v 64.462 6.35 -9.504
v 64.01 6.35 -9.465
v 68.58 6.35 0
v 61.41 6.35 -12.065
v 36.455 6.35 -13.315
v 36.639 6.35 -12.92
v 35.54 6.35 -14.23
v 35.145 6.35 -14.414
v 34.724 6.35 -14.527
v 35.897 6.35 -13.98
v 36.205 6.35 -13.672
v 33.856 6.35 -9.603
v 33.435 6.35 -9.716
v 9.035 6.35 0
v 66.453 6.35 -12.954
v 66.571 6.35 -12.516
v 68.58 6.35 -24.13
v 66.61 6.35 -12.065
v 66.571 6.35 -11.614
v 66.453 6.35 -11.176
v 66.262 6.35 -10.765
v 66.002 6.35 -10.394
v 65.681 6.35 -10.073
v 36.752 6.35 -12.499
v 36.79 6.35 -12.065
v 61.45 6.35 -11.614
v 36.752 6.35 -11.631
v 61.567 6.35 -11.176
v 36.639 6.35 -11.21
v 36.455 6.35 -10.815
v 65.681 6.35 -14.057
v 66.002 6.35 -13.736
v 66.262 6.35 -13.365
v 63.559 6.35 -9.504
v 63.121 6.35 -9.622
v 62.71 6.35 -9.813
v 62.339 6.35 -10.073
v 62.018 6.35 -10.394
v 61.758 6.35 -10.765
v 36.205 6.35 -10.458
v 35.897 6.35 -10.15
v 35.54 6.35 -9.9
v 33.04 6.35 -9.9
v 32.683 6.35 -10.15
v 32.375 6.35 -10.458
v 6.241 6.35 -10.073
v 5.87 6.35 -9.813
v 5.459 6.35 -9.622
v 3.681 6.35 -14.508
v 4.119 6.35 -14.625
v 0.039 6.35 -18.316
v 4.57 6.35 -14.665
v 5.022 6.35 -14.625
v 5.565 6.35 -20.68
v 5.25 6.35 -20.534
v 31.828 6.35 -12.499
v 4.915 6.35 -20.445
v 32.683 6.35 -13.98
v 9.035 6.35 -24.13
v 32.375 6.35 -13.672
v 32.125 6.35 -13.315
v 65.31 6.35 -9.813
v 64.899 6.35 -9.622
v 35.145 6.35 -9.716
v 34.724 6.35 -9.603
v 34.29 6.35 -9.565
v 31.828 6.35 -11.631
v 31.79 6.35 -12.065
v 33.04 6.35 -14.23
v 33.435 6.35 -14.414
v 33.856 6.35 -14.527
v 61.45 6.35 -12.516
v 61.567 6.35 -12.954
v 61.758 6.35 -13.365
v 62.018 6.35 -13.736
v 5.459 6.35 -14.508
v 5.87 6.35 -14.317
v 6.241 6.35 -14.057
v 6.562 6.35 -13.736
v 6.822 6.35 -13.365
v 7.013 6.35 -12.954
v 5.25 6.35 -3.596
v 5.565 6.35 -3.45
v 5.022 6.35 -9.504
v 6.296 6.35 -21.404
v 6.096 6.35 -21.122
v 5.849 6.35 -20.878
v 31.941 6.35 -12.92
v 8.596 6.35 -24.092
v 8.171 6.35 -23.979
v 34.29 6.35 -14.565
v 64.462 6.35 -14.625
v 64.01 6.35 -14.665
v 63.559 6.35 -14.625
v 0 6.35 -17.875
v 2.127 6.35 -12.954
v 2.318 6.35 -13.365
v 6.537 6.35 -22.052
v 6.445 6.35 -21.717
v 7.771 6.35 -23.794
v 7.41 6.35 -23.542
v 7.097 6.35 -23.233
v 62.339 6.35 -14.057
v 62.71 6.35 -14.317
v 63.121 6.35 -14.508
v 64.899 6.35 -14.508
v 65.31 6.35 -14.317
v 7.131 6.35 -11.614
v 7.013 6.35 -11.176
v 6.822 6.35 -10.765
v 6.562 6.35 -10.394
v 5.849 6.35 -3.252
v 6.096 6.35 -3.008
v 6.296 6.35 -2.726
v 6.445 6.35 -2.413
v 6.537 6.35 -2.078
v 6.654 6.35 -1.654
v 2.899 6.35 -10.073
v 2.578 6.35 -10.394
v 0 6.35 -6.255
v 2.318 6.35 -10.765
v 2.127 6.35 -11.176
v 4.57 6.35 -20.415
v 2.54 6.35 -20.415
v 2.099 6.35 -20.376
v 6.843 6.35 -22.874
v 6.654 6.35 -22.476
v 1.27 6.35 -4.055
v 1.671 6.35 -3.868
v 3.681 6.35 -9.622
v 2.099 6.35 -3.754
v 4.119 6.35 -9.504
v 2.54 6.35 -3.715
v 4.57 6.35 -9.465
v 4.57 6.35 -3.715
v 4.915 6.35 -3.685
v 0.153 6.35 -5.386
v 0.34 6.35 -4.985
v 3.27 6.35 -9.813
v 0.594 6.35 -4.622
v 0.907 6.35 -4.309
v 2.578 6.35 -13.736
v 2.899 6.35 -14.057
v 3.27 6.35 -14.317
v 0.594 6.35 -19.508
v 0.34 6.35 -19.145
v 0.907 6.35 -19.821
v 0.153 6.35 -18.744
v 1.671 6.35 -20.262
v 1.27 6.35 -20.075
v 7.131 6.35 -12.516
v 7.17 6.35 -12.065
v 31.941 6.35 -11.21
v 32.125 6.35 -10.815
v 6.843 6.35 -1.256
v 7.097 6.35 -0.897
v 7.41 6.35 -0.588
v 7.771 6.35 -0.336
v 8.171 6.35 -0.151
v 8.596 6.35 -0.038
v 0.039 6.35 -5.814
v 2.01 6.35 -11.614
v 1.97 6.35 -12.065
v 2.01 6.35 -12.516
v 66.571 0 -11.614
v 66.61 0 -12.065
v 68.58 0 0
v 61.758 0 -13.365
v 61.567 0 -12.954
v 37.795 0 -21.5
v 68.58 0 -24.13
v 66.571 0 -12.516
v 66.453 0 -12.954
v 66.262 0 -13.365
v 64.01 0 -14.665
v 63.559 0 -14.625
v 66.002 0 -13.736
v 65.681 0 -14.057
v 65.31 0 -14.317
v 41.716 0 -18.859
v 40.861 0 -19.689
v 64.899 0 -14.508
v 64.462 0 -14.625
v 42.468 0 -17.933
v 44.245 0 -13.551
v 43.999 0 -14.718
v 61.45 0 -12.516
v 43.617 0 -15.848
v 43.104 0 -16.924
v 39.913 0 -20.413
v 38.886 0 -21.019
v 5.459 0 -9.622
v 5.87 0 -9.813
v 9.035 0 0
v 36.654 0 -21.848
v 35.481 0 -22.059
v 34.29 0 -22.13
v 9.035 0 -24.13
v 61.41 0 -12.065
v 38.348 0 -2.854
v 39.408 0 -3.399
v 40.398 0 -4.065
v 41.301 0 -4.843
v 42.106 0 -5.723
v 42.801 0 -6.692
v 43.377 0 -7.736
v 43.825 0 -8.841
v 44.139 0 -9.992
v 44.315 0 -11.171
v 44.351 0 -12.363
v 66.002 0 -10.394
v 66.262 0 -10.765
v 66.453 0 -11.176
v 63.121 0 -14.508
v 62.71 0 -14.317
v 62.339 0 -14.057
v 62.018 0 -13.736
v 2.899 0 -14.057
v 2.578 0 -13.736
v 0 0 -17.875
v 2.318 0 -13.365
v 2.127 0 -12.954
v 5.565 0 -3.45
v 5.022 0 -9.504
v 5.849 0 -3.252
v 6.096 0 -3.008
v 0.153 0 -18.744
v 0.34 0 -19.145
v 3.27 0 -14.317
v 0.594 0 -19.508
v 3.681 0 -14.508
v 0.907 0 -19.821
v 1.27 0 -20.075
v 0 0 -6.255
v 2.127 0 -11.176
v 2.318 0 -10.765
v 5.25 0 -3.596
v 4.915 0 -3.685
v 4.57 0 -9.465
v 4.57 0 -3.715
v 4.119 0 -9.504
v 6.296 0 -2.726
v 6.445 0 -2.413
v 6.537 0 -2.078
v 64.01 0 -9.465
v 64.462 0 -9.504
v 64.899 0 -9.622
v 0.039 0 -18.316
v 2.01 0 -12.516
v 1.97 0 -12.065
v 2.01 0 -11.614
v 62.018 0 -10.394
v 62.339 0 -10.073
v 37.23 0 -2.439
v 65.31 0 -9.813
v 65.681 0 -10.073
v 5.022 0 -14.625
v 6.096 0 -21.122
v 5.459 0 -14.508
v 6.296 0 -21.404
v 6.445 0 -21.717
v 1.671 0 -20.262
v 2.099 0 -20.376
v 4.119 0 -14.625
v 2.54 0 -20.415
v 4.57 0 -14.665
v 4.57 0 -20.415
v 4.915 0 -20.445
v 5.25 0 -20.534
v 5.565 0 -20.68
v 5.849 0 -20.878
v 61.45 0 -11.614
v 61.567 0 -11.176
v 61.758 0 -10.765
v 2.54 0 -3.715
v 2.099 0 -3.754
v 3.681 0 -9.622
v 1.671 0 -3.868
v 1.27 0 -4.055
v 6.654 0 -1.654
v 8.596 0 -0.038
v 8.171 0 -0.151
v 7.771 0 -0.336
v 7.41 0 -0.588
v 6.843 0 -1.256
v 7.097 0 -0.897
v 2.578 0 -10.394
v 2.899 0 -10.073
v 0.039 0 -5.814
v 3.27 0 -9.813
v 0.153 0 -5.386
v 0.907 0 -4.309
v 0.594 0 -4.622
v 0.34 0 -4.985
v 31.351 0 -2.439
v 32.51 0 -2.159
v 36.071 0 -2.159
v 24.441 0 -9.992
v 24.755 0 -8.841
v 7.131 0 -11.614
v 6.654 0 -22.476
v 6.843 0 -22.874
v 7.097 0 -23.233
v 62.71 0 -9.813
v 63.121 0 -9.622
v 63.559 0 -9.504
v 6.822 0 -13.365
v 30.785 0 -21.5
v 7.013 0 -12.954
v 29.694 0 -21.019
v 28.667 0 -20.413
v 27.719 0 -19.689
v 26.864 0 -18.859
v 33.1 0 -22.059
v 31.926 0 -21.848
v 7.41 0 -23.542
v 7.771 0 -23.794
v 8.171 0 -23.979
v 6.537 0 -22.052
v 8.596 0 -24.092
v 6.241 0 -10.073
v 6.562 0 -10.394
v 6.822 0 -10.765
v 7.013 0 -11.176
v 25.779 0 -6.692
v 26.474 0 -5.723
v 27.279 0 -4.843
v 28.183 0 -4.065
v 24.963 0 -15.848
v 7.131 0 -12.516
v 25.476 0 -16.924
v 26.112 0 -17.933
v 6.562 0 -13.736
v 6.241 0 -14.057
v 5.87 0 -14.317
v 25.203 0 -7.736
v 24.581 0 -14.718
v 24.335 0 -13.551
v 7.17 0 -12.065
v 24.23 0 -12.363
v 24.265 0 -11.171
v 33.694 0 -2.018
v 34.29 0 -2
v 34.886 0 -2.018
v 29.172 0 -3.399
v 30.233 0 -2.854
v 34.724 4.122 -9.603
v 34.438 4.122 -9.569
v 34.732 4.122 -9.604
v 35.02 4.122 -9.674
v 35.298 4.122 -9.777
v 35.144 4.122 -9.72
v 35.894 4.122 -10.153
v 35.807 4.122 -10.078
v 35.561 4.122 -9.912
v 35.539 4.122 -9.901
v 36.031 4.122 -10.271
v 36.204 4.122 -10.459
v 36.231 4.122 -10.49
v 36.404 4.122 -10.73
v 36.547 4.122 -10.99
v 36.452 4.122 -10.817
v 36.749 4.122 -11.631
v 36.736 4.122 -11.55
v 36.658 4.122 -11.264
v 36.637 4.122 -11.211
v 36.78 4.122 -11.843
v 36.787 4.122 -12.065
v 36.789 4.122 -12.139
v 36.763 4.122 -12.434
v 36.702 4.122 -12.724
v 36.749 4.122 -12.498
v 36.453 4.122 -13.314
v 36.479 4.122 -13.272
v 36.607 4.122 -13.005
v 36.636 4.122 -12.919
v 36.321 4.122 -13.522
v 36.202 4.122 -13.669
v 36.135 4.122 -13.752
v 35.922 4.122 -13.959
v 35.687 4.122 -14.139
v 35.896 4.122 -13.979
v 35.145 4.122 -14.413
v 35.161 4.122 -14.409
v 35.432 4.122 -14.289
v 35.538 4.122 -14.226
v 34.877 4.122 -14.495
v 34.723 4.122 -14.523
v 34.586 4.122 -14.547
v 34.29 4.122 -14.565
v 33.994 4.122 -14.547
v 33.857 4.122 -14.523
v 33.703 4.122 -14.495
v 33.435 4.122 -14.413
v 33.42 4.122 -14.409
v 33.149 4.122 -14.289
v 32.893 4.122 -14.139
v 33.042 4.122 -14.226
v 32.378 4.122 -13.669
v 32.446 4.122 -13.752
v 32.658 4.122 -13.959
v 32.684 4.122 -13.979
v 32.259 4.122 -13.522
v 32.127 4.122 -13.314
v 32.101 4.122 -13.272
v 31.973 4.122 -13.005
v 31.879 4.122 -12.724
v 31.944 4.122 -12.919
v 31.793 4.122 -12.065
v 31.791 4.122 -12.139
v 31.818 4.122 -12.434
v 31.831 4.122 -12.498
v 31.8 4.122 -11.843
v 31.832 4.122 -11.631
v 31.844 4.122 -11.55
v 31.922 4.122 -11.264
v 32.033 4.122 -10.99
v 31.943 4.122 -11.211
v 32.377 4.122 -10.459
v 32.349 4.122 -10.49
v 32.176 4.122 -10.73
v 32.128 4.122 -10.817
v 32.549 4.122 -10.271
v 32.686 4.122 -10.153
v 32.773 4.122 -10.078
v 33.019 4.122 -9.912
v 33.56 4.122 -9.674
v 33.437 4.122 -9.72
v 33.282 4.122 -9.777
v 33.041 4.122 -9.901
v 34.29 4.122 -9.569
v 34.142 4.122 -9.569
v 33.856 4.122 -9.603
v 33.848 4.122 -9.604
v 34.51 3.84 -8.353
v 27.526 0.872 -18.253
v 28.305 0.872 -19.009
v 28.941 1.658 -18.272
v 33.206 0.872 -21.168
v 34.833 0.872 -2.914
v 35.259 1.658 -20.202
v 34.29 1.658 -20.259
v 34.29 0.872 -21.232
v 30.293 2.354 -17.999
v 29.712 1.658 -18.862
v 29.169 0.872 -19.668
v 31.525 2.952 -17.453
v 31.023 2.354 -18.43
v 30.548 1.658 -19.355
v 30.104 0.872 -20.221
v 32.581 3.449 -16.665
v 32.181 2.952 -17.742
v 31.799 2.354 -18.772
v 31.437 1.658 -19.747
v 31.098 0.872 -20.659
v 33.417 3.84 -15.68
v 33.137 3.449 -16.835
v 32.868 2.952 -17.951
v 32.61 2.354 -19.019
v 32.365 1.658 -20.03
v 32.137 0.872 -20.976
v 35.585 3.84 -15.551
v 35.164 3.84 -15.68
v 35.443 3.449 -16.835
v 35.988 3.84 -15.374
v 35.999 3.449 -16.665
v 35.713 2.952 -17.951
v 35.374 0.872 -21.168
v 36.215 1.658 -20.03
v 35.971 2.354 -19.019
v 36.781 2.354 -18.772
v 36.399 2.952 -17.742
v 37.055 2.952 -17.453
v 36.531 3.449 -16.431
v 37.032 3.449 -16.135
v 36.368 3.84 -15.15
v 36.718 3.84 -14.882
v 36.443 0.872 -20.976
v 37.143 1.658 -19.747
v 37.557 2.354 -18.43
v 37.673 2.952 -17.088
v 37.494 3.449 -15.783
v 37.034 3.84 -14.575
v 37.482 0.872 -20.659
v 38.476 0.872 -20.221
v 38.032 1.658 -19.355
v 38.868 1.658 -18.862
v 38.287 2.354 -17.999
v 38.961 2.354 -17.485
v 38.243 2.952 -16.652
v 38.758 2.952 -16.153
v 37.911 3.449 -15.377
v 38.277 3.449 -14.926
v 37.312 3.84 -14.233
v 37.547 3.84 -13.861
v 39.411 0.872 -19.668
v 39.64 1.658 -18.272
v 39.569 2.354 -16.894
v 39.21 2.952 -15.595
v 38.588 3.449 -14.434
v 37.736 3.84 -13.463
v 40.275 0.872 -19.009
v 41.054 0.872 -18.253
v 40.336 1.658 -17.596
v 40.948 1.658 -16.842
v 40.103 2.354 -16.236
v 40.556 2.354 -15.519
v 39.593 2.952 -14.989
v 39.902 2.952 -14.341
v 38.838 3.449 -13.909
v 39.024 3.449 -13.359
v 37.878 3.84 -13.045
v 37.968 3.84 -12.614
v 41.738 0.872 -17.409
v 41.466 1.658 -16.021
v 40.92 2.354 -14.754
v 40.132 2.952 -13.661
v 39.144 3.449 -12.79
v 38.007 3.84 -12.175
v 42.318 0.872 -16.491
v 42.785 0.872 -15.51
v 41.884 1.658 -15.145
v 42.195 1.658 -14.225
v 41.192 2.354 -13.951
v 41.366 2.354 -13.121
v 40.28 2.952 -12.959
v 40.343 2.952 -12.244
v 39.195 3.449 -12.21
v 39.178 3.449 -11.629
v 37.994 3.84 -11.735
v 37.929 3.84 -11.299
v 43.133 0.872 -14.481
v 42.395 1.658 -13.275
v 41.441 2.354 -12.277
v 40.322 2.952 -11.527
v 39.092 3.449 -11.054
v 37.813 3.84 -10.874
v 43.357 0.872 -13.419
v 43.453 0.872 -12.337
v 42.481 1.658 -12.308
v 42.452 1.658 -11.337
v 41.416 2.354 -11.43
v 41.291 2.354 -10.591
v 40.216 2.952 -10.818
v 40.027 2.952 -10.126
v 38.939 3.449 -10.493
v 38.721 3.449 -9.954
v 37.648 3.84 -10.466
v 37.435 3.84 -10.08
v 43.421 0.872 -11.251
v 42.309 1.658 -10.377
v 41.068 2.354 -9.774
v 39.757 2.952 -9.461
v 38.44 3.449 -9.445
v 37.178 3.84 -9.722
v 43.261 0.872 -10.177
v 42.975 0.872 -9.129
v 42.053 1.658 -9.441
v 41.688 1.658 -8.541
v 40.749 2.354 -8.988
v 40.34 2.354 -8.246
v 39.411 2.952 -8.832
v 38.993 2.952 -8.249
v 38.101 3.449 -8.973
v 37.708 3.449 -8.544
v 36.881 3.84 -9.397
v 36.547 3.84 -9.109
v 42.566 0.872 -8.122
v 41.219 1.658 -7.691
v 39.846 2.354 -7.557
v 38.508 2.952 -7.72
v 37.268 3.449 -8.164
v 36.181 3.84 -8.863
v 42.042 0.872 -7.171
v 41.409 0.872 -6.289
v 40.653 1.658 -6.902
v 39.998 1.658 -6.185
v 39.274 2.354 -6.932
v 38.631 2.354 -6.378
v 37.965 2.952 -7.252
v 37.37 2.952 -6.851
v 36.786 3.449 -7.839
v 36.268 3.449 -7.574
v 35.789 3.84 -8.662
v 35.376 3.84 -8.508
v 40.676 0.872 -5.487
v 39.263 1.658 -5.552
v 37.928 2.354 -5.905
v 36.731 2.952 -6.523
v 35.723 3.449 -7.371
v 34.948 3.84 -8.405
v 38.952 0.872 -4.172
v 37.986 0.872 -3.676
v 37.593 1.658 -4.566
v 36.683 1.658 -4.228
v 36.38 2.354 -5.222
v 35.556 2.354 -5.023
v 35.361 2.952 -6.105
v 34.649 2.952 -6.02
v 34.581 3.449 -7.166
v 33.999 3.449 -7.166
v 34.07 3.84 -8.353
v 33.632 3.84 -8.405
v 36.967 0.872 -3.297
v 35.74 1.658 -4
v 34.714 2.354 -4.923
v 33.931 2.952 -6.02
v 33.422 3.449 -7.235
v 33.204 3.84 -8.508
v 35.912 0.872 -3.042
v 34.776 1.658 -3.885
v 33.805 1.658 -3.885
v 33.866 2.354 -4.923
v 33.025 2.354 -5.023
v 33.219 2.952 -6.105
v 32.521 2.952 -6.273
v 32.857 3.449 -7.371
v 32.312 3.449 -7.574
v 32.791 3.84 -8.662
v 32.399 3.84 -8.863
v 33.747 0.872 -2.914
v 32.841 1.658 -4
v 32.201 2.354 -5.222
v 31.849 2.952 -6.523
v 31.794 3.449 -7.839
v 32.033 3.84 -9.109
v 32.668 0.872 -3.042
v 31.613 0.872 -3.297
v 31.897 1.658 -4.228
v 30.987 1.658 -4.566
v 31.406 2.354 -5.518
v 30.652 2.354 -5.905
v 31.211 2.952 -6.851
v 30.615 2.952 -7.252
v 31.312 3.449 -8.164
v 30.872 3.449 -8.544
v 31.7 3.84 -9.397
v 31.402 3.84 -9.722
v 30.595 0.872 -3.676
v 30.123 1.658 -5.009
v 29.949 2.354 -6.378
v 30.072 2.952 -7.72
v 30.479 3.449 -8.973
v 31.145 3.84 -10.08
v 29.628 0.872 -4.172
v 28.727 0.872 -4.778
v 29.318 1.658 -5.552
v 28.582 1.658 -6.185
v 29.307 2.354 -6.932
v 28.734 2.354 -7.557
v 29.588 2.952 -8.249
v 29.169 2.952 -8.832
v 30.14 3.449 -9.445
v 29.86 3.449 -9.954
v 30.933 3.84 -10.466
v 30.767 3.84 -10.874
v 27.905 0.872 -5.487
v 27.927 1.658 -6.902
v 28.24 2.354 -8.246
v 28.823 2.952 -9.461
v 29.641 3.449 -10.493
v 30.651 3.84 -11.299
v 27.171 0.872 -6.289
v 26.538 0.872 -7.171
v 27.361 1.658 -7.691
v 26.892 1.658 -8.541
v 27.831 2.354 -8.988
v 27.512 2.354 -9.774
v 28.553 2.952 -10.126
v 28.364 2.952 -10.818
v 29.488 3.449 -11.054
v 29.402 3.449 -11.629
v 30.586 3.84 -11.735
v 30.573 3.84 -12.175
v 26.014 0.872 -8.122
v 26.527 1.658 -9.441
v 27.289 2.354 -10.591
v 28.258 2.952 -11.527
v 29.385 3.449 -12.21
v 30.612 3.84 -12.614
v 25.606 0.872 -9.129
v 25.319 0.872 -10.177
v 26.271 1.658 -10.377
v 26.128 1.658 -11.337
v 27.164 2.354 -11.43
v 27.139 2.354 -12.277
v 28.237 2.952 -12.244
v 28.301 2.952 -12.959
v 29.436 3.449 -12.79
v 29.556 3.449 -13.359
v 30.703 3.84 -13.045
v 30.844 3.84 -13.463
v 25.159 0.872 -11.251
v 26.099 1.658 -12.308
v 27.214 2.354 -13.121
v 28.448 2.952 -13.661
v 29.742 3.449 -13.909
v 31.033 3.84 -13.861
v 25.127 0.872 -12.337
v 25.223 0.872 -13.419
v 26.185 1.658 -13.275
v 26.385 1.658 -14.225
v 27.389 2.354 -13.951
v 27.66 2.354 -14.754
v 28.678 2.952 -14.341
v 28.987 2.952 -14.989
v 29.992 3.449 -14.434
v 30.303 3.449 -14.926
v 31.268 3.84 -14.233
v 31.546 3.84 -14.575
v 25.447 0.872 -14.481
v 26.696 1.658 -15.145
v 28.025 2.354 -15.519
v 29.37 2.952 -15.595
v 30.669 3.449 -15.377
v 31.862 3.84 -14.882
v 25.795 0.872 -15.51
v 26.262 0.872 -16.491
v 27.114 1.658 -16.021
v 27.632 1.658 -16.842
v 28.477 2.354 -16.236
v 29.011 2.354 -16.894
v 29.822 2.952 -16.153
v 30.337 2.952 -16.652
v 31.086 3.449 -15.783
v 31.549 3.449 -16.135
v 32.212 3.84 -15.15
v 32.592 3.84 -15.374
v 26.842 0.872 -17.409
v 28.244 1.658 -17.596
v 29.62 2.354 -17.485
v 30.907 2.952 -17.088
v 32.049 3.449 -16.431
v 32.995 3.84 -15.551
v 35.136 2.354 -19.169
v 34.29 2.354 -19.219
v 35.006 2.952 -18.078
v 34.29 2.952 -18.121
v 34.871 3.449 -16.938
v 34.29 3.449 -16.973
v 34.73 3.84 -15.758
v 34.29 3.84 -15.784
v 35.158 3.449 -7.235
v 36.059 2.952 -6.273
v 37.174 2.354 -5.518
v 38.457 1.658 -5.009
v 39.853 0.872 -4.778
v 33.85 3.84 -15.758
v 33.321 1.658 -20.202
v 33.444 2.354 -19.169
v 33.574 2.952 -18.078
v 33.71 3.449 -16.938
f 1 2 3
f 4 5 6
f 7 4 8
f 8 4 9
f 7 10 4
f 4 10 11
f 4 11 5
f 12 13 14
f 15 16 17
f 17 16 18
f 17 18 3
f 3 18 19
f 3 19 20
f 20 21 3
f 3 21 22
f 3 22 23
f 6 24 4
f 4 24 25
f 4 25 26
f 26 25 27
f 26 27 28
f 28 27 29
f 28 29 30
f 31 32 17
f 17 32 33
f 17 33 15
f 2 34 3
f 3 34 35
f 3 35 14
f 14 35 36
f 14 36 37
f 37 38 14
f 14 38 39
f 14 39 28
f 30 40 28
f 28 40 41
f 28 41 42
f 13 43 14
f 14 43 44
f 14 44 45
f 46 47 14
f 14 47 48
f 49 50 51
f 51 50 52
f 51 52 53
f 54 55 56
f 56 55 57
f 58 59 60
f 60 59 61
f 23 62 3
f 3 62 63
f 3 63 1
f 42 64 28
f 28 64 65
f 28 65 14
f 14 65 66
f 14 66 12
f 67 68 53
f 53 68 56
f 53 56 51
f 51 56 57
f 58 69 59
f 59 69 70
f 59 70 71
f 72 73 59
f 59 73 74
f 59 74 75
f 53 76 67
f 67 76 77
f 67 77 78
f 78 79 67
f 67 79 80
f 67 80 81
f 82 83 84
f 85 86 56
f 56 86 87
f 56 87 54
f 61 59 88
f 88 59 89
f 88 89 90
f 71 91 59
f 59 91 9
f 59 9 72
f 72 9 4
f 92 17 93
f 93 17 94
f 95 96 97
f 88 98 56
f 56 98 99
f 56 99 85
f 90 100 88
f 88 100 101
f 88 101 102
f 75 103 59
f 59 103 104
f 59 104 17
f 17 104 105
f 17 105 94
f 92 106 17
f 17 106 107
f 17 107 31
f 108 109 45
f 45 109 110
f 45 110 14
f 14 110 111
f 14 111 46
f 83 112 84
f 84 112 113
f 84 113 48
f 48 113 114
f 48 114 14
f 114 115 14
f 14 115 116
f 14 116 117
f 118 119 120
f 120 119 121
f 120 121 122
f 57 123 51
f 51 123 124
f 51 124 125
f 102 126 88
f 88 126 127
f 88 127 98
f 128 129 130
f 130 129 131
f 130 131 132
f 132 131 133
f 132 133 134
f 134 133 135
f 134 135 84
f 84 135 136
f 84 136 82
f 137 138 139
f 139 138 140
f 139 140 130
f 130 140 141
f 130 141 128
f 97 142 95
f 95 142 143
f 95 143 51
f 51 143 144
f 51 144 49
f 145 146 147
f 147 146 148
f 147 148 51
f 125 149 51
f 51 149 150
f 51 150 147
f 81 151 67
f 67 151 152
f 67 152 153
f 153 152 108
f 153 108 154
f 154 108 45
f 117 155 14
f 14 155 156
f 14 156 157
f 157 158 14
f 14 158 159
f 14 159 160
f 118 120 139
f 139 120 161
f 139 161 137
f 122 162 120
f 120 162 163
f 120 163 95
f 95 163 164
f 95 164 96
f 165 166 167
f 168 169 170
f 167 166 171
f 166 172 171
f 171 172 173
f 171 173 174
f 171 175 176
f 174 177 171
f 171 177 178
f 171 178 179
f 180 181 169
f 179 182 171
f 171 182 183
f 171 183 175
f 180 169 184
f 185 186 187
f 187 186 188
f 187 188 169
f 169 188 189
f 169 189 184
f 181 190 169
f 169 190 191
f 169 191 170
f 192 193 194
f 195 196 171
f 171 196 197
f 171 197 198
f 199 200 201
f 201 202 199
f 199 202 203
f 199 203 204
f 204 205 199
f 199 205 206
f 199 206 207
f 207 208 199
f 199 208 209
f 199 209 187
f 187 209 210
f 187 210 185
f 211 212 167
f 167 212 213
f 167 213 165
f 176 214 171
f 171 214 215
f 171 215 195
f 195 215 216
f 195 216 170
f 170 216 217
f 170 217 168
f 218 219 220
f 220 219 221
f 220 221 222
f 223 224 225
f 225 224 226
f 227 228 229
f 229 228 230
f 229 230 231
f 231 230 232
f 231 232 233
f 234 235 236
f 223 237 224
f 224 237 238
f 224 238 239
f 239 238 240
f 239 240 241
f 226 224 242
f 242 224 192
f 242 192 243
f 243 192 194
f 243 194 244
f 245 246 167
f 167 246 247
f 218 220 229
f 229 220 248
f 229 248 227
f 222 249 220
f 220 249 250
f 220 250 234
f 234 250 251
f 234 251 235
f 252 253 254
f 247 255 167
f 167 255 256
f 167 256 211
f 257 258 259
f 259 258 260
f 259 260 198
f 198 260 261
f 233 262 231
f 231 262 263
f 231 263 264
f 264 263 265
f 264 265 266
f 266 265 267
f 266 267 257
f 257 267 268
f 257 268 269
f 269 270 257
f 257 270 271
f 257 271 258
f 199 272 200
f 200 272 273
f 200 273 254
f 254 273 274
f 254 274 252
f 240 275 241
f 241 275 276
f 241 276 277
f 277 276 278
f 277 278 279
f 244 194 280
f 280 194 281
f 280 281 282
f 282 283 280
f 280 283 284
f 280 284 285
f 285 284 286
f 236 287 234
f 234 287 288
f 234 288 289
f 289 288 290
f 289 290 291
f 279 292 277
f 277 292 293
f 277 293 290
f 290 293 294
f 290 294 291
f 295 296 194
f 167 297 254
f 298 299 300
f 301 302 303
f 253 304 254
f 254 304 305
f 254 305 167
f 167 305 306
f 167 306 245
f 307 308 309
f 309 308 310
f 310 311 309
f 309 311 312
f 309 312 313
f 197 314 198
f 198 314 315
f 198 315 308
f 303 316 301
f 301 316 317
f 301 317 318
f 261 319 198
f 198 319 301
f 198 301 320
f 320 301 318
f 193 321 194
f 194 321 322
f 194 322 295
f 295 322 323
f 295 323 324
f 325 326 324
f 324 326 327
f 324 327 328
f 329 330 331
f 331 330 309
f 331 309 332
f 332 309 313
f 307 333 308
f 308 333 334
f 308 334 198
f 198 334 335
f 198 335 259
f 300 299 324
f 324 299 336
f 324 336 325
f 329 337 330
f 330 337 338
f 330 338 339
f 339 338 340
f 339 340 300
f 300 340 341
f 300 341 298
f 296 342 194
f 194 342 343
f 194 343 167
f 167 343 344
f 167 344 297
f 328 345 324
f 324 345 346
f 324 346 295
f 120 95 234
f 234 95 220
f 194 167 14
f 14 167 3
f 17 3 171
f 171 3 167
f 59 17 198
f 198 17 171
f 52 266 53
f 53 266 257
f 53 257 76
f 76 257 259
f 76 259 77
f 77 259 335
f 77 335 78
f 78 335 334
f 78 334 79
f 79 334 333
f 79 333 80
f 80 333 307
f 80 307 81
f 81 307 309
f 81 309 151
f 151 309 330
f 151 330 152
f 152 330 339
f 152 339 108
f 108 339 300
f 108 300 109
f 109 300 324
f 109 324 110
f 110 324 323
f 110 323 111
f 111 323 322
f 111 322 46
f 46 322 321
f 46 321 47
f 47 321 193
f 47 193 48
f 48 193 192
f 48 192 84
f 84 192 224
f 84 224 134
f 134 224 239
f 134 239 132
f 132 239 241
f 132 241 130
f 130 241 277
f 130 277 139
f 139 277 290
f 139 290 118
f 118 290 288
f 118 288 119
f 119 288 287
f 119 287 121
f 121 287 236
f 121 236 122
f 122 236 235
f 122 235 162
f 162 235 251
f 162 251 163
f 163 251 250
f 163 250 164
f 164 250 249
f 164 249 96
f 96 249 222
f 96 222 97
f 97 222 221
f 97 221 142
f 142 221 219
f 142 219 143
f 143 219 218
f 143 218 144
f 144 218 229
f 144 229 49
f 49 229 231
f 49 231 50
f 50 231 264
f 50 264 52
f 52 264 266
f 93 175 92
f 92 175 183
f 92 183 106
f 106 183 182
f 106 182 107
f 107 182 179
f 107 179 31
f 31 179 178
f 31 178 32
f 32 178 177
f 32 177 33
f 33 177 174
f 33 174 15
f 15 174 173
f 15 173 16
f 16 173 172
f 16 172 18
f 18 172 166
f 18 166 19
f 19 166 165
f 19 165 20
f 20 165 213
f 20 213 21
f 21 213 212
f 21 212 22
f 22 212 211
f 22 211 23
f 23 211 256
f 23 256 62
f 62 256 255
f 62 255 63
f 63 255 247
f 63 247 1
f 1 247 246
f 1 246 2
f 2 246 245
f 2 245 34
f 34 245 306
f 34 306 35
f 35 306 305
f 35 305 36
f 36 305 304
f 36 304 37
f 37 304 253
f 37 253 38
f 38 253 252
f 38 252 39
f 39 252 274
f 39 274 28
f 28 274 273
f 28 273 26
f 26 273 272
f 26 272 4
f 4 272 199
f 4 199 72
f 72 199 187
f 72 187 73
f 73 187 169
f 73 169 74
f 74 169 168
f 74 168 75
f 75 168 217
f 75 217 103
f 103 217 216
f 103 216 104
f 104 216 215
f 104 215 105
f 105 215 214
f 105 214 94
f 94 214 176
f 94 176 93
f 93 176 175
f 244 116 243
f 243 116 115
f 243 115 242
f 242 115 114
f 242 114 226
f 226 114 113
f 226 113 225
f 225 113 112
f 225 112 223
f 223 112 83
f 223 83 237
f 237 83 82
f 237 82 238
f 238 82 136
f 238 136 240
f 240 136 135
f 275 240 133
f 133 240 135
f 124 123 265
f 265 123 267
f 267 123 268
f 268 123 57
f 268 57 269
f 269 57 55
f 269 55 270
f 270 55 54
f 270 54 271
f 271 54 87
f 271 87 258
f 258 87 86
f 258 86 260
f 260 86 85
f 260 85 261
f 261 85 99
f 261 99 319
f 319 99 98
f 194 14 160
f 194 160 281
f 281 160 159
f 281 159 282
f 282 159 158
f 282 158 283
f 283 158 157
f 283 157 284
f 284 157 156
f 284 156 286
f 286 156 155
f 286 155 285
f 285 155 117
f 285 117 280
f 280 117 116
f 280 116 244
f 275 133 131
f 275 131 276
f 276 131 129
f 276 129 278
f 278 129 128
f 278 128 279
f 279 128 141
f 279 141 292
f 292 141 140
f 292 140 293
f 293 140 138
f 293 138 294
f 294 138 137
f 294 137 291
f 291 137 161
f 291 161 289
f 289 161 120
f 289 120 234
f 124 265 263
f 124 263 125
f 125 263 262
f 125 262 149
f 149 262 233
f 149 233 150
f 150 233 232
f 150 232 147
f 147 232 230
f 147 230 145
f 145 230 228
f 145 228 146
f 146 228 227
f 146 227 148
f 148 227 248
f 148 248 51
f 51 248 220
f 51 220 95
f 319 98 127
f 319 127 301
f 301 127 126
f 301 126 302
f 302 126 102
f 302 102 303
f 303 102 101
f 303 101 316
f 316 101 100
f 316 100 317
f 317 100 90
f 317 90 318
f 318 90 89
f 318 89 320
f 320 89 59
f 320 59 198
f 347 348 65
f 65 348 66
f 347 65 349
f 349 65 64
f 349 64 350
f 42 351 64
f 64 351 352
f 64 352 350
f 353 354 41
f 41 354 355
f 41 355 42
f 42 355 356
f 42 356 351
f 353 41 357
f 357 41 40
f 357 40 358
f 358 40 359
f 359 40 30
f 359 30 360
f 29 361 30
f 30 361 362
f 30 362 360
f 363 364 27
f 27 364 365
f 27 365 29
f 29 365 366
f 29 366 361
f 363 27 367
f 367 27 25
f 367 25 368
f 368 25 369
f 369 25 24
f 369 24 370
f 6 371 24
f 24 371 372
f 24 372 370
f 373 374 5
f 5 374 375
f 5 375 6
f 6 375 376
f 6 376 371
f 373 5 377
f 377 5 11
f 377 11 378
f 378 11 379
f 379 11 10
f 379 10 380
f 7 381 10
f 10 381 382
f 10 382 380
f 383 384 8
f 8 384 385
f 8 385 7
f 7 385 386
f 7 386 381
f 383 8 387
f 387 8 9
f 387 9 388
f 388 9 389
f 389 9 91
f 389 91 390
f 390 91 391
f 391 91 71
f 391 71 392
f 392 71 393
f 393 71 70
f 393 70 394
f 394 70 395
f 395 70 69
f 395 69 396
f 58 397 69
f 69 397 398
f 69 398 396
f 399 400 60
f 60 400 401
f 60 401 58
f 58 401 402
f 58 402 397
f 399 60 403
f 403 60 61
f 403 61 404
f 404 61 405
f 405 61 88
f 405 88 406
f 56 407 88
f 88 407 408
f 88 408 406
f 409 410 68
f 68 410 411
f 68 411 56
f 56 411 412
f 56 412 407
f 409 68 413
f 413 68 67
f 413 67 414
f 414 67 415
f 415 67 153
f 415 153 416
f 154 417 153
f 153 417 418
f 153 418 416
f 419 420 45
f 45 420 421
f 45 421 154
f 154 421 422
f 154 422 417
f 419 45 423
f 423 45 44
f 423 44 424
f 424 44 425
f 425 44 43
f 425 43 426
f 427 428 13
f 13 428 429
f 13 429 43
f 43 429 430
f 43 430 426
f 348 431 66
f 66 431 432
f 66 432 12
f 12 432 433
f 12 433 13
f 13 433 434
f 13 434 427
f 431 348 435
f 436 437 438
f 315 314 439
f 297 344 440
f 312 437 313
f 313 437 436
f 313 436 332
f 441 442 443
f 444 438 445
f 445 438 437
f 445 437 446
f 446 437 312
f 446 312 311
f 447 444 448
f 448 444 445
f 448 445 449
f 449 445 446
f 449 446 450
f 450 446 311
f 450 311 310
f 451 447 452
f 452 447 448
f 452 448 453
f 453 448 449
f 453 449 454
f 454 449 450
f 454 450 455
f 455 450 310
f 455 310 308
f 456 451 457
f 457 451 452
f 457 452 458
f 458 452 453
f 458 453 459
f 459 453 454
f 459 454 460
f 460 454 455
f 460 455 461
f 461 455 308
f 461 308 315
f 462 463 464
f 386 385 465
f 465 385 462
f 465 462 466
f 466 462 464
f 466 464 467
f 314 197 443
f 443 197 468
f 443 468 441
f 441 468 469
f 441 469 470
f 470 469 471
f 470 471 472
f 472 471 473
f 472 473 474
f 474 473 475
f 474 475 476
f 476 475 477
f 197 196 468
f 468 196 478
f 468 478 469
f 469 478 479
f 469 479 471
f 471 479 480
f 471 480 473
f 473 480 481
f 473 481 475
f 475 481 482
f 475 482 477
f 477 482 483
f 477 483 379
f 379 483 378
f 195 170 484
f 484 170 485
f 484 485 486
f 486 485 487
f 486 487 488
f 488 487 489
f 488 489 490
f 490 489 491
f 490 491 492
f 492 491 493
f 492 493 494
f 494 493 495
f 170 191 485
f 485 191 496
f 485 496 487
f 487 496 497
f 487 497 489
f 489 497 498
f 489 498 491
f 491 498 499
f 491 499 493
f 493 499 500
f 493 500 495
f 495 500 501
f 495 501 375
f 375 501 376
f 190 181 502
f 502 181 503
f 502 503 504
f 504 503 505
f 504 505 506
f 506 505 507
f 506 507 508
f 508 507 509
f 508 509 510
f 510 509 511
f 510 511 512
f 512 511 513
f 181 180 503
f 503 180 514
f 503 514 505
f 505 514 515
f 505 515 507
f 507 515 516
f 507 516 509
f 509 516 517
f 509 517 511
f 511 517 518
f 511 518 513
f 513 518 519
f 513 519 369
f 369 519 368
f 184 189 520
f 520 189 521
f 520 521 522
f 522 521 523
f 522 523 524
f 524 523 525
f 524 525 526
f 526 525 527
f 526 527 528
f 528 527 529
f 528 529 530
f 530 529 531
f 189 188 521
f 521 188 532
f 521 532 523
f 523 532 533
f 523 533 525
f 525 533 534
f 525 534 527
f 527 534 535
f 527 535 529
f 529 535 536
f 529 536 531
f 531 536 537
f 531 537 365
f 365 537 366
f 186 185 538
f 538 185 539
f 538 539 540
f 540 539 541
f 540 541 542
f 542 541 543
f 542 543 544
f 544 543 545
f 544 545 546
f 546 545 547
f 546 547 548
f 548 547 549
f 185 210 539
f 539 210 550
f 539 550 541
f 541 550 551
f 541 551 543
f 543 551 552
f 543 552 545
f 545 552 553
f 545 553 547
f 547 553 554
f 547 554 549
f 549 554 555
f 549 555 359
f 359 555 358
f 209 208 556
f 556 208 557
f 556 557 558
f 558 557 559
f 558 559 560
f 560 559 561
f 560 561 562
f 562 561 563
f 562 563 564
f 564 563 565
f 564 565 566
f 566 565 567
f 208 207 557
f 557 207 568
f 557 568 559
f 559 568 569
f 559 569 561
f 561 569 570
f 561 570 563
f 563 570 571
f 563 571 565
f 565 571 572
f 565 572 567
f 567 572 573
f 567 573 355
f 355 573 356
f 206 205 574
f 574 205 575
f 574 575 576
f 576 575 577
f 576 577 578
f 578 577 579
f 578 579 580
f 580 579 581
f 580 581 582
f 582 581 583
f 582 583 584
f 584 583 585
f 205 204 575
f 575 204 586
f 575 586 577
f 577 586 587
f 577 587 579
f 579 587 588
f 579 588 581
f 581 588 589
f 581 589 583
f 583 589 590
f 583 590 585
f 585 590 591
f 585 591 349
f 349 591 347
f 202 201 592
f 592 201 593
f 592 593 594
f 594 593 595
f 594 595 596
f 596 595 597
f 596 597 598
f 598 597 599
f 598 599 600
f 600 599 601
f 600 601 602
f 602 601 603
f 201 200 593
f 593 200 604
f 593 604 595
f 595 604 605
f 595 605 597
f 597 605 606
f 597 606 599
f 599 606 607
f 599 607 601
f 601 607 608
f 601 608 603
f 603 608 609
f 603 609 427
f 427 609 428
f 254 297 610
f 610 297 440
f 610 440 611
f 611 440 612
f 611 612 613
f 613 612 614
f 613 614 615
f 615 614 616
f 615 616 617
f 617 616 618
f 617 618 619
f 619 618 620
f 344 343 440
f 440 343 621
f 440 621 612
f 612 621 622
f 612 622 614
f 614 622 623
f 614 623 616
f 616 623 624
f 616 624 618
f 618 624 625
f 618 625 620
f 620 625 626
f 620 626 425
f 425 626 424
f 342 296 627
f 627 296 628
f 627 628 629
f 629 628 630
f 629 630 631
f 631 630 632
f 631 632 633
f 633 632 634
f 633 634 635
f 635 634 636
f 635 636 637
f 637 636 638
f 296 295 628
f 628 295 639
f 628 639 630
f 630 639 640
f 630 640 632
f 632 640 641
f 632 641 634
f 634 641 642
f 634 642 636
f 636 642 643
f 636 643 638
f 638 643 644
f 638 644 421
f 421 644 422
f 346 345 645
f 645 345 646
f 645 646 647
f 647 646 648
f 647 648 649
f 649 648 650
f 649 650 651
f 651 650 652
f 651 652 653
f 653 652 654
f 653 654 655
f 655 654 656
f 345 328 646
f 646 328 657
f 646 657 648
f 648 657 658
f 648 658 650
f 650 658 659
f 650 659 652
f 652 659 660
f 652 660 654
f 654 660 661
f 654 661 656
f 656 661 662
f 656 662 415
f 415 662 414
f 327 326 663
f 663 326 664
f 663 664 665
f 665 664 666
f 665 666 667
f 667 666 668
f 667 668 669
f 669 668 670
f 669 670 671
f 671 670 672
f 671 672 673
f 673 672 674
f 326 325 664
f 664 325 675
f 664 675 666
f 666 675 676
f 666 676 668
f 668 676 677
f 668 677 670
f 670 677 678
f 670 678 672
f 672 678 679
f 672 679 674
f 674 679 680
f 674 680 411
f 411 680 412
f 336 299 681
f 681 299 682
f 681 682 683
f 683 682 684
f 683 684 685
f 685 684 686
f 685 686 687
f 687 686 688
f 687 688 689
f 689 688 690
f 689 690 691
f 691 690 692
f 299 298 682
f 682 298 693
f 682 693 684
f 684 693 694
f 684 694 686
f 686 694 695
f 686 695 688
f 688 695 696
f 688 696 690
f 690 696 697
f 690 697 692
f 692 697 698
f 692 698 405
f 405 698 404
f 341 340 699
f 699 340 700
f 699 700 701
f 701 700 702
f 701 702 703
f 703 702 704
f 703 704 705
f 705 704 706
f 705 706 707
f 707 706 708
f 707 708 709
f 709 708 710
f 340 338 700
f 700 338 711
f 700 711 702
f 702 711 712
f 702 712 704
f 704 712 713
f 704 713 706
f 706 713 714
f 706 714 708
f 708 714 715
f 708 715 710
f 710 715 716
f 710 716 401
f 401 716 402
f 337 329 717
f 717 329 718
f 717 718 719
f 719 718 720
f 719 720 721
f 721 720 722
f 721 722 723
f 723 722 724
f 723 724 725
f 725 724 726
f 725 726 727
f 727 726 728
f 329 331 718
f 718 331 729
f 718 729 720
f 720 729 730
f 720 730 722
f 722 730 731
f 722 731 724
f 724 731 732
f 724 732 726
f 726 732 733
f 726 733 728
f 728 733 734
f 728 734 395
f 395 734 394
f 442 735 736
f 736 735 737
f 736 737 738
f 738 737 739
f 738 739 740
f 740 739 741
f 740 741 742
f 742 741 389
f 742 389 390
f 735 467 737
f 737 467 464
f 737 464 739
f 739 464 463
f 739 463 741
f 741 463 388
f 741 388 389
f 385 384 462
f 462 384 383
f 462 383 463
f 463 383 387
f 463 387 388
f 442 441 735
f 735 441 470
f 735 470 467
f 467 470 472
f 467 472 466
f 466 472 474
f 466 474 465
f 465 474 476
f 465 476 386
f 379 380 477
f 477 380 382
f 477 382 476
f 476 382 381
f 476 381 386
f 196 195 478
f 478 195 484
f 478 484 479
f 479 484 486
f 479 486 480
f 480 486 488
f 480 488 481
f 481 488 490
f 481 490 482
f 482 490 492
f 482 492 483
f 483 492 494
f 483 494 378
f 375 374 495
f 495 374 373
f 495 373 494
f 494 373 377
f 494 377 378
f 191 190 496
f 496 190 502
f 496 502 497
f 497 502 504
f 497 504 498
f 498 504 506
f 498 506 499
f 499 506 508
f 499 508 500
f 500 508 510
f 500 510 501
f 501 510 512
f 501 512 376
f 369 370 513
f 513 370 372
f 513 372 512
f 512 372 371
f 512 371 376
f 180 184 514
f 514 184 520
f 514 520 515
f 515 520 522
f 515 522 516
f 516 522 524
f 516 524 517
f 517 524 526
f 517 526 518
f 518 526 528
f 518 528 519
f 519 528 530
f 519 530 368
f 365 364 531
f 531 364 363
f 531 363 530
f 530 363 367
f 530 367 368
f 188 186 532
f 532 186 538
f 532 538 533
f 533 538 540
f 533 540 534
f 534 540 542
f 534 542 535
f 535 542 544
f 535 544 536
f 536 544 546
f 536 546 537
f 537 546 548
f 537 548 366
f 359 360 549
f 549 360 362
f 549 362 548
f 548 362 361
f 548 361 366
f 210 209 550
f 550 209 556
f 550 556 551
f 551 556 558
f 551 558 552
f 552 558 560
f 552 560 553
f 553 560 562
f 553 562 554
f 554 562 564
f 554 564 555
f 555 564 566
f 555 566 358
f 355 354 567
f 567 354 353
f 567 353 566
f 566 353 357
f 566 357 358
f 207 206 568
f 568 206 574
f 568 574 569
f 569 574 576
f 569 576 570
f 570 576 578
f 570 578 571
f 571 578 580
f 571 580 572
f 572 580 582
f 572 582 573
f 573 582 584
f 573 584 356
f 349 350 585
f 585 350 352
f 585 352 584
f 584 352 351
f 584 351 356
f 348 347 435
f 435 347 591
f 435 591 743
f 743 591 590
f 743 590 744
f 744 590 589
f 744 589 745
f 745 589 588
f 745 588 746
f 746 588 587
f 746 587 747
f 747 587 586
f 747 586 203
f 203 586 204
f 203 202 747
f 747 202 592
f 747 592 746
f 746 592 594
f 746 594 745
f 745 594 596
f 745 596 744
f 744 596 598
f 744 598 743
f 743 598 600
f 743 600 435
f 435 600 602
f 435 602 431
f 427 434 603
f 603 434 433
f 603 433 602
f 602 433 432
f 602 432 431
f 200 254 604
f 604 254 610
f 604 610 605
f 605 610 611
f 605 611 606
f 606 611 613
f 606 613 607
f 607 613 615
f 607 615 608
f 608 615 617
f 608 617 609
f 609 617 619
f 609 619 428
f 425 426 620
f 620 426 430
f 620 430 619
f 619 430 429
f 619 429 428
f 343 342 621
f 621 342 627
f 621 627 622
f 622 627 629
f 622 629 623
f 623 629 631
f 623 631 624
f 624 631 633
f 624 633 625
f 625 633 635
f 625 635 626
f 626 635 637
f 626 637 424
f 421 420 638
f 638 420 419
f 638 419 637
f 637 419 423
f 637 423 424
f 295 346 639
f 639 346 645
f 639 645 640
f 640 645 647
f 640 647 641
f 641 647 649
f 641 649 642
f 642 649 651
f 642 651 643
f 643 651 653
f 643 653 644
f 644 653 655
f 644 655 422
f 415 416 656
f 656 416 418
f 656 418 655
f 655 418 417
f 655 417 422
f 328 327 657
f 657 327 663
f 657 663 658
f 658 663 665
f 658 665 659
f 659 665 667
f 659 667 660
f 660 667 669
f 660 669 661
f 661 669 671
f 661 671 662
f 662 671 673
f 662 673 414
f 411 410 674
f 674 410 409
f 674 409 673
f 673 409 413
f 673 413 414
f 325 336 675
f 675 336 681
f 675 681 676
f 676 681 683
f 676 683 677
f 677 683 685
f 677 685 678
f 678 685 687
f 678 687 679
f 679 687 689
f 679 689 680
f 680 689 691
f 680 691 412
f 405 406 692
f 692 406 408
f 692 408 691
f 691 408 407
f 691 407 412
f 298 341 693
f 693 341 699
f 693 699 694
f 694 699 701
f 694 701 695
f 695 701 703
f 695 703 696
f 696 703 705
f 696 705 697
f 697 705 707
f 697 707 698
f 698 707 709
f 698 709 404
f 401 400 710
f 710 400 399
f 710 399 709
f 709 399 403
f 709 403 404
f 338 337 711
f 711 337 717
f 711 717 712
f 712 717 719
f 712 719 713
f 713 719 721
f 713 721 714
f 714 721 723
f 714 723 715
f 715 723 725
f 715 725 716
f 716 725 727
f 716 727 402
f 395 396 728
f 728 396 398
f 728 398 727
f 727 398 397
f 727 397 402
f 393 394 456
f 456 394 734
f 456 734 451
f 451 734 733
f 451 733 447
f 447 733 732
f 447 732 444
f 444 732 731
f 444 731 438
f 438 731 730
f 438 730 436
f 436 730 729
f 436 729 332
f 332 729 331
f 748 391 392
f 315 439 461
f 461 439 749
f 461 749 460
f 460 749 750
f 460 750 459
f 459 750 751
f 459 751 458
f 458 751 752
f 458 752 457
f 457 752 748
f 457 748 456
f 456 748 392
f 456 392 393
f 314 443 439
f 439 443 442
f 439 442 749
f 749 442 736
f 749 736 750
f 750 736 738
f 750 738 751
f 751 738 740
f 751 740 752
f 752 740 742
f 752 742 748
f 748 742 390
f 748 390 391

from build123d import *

# Parameters (mm, degrees)
SKETCH2_W           = 68.58
SKETCH2_H           = 24.13
SKETCH2_R           = 2.6
BOSS_EXTRUDE1_DEPTH = 6.35
CUT_EXTRUDE1_DEPTH  = 7.35
FILLET3_R           = 2.54
SKETCH4_R           = 2.5
CUT_EXTRUDE2_DEPTH  = 7.3500001


with BuildPart() as part:
    # Sketch2 → Boss-Extrude1 (new body)
    with BuildSketch(Plane(origin=(0, 0, 0), x_dir=(1, 0, 0), z_dir=(0, 1, 0))):
        with Locations((34.29, 12.065)):
            Rectangle(SKETCH2_W, SKETCH2_H)
        with Locations((4.57, 12.065)):
            Circle(SKETCH2_R, mode=Mode.SUBTRACT)
        with Locations((64.01, 12.065)):
            Circle(SKETCH2_R, mode=Mode.SUBTRACT)
    extrude(amount=BOSS_EXTRUDE1_DEPTH)

    # Sketch3 → Cut-Extrude1 (cut, through all)
    with BuildSketch(Plane(origin=(0, 6.35, 0), x_dir=(1, 0, 0), z_dir=(0, 1, 0))):
        with BuildLine():
            Line((4.57, 3.715), (0, 3.715))
            Line((0, 3.715), (0, 0))
            Line((0, 0), (6.57, 0))
            Line((6.57, 0), (6.57, 1.715))
            ThreePointArc((6.57, 1.715), (5.984213562, 3.129213562), (4.57, 3.715))
        make_face()
        with BuildLine():
            ThreePointArc((4.57, 20.415), (5.984213562, 21.000786438), (6.57, 22.415))
            Line((6.57, 22.415), (6.57, 24.13))
            Line((6.57, 24.13), (0, 24.13))
            Line((0, 24.13), (0, 20.415))
            Line((0, 20.415), (4.57, 20.415))
        make_face()
    extrude(amount=-CUT_EXTRUDE1_DEPTH, mode=Mode.SUBTRACT)

    # Fillet3
    fillet3_edges = [part.edges().sort_by_distance(p)[0] for p in [
        (6.57, 3.175, 0),
        (0, 3.175, -3.715),
        (0, 3.175, -20.415),
        (6.57, 3.175, -24.13),
    ]]
    fillet(fillet3_edges, radius=FILLET3_R)

    # Sketch4 → Cut-Extrude2 (cut, through all)
    with BuildSketch(Plane(origin=(0, 6.35, 0), x_dir=(1, 0, 0), z_dir=(0, 1, 0))):
        with Locations((34.29, 12.065)):
            Circle(SKETCH4_R)
    extrude(amount=-CUT_EXTRUDE2_DEPTH, mode=Mode.SUBTRACT)

    # Sketch8 one side → Cut-Revolve6 (revolve, cut)
    with BuildSketch(Plane(origin=(34.29, 0, 0), x_dir=(0, 0, -1), z_dir=(1, 0, 0))):
        with BuildLine():
            Line((12.065, 0), (22.13, 0))
            ThreePointArc((22.13, 0), (17.5473974, 3.215969501), (12.065, 4.35))
            Line((12.065, 4.35), (12.065, 0))
        make_face()
    revolve(axis=Axis((34.29, 6.35, -12.065), (0, -1, 0)), mode=Mode.SUBTRACT)


solid = part.part
